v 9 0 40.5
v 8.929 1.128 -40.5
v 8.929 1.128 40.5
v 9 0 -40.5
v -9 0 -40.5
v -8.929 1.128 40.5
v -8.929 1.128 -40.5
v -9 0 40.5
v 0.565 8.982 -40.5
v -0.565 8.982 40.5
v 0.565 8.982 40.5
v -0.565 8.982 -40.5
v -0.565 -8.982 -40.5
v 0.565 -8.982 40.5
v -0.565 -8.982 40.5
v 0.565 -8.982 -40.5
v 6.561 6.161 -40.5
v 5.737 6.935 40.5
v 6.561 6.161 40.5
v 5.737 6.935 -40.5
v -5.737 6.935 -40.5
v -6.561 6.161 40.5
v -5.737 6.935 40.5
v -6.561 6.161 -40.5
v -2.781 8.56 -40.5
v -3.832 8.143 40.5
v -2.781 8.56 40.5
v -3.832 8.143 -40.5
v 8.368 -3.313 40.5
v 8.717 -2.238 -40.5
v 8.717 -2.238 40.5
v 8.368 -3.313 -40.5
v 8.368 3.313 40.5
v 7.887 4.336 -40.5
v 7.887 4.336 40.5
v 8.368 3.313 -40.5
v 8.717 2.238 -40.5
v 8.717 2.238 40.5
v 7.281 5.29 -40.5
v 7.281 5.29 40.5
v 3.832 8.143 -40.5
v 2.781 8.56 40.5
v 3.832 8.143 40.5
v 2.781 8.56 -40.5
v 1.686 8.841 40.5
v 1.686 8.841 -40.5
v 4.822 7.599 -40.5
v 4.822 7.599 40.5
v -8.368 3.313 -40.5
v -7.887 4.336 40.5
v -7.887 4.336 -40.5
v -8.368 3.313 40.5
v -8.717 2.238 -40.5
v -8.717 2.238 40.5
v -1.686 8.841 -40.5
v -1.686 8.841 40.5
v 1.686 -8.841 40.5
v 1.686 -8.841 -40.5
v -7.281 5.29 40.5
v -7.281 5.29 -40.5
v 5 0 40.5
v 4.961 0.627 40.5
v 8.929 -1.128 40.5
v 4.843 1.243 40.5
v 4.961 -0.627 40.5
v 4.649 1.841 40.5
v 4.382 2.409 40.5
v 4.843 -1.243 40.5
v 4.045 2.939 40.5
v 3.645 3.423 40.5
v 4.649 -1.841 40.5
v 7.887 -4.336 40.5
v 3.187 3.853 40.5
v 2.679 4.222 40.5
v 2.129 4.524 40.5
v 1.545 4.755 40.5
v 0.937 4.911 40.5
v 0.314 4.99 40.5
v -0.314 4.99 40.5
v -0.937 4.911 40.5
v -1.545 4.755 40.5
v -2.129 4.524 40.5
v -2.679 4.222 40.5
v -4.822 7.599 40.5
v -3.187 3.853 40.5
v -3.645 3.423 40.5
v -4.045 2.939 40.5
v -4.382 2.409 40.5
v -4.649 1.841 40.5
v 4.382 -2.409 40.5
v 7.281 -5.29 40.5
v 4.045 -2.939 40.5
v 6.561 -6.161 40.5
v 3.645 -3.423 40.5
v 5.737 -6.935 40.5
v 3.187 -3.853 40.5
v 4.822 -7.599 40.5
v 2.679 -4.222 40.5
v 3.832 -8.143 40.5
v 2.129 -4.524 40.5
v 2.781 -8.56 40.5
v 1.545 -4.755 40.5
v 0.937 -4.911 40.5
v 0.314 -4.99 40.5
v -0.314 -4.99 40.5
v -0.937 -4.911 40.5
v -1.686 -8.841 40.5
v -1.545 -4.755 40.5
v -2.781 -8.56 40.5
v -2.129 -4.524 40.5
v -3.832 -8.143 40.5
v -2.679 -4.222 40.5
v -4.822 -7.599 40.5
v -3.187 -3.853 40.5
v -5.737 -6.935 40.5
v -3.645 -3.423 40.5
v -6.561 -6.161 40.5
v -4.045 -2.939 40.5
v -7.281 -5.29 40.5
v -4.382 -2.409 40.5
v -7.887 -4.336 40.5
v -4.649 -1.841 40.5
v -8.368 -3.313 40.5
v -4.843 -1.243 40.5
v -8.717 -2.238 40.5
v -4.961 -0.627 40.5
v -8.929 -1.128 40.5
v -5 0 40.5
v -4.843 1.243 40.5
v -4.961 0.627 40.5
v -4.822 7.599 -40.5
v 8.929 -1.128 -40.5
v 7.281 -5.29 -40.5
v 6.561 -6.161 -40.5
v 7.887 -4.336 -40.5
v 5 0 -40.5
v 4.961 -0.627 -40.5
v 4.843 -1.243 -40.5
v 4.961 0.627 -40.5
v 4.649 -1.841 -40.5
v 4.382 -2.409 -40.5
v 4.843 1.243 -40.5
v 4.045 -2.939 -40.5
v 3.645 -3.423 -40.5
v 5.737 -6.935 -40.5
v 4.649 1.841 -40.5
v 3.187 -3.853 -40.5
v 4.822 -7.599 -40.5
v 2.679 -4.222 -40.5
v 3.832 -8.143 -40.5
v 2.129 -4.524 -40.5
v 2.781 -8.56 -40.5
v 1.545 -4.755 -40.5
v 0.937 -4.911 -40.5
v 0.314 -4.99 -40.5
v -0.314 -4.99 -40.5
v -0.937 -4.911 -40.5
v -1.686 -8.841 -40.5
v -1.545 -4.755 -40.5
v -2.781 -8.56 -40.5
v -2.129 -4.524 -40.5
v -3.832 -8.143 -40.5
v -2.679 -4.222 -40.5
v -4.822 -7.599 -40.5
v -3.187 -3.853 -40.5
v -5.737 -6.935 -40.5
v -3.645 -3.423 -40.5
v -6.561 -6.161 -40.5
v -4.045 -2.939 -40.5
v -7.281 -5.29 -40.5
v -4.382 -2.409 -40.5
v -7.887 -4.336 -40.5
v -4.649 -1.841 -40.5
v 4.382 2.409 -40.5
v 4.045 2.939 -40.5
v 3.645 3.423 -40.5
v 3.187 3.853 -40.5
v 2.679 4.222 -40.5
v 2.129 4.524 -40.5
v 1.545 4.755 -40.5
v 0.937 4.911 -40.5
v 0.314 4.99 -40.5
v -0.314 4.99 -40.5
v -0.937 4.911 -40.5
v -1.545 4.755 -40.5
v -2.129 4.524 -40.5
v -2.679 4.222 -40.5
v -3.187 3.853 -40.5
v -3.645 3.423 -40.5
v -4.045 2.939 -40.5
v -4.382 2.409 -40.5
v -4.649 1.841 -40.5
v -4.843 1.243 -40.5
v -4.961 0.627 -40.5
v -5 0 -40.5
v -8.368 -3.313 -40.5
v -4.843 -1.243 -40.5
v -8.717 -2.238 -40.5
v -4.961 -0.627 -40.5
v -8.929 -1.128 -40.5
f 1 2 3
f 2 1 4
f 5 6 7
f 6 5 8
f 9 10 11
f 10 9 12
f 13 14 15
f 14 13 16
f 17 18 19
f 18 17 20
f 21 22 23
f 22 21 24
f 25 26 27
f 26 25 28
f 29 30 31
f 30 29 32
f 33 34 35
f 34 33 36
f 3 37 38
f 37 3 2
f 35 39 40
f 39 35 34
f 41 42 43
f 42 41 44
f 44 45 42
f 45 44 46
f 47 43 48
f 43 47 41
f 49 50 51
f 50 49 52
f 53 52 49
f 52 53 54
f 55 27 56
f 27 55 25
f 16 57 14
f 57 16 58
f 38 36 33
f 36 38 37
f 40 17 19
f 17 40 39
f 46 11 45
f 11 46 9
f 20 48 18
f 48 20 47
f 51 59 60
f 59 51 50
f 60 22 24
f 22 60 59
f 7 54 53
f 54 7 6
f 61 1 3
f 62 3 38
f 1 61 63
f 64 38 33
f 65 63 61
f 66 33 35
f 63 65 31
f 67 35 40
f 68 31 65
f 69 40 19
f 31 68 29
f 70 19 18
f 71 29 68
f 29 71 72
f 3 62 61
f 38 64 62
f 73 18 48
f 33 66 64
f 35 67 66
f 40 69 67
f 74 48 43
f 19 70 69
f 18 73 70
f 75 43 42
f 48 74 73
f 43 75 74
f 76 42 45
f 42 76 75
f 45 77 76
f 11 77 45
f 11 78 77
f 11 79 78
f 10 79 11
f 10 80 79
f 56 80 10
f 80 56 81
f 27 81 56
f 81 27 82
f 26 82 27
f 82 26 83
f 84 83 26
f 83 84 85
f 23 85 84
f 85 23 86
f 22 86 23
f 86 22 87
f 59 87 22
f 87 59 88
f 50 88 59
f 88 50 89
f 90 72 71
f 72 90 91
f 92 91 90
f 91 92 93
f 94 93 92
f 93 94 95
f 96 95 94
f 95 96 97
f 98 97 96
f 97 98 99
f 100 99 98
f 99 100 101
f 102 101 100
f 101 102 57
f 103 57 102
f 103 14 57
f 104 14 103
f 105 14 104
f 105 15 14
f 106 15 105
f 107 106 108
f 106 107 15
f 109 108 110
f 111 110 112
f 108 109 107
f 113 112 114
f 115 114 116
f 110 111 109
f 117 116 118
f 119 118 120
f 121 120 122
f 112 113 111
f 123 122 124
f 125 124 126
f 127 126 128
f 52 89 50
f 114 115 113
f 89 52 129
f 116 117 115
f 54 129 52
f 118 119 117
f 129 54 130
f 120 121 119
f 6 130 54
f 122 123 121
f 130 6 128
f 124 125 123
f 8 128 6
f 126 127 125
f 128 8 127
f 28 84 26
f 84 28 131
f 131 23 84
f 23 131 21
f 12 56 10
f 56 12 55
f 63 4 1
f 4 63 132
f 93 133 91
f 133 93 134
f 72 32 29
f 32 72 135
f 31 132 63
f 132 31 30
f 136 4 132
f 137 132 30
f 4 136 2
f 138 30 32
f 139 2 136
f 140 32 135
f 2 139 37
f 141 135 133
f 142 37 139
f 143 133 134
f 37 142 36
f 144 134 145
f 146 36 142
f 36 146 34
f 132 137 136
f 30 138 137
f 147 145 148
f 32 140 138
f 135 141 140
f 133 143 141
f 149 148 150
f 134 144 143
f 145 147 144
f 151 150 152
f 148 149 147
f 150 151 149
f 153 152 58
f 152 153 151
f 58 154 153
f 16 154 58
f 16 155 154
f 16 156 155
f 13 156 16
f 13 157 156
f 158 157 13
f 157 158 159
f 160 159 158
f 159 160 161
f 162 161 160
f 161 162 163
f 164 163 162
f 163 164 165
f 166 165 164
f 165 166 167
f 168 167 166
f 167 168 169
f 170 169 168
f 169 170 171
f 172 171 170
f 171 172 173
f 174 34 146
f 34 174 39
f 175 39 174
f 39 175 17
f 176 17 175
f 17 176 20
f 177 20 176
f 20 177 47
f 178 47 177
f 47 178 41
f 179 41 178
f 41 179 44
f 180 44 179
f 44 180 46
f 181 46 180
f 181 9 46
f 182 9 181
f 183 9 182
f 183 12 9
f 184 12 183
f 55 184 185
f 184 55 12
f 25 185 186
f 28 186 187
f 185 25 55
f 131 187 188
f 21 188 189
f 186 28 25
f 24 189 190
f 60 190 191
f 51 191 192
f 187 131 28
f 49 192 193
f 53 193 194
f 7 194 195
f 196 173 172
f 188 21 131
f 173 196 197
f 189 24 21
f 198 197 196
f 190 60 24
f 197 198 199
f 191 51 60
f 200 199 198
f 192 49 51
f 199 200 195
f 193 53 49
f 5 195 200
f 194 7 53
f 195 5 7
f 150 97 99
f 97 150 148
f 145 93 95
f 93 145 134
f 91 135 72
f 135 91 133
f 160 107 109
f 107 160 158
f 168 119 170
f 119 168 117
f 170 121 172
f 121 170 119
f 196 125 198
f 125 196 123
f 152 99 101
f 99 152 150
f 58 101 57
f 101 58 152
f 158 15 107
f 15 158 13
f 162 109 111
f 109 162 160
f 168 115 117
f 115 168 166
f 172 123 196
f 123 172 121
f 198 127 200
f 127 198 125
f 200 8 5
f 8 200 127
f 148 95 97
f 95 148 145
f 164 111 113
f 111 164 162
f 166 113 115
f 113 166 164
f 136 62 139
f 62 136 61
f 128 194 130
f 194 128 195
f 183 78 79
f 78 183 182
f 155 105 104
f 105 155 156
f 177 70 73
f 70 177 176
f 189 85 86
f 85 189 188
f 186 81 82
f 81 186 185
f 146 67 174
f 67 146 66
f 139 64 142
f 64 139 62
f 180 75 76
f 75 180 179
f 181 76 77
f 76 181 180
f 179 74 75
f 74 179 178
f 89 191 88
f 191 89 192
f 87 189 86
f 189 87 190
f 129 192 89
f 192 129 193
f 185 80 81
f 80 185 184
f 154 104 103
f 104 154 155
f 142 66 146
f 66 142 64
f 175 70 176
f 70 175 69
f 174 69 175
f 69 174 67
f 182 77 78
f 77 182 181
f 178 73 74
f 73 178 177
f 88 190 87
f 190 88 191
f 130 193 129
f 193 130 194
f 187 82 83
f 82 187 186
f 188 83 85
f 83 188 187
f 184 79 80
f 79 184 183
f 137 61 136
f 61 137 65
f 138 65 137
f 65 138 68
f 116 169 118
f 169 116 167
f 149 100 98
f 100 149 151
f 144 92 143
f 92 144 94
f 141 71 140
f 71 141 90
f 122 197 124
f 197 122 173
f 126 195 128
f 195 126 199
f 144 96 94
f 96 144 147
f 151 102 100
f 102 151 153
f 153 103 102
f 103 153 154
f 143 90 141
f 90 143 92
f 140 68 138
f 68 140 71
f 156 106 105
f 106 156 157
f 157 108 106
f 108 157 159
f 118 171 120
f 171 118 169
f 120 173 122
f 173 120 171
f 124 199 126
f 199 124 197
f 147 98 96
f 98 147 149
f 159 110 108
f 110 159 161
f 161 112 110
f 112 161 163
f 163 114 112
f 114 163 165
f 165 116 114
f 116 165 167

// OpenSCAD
$fn = 50;


difference() {
	union() {
		translate(v = [0, 0, -40.5000000000]) {
			cylinder(h = 81, r = 9.0000000000);
		}
	}
	union() {
		translate(v = [0, 0, -100.0000000000]) {
			cylinder(h = 200, r = 5.0000000000);
		}
	}
}
